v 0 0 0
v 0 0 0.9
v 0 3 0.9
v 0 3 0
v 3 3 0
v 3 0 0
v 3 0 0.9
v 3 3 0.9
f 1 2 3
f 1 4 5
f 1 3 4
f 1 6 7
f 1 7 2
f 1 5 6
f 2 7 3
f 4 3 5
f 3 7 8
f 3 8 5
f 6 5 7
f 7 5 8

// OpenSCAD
/* Warning, this is a very basic generator with a lot of approximation 
input data : [VDFN, N7A, 3x3x0.9mm, 12, , A, C04-01060A]
generated by com.zoubworld.electronics.cad.model3d.Basic
Date : Sun Feb 15 10:50:49 CET 2026
*/

//body
color("black")
translate([0,0,0])
cube([3.0,3.0,0.9], center=false);
